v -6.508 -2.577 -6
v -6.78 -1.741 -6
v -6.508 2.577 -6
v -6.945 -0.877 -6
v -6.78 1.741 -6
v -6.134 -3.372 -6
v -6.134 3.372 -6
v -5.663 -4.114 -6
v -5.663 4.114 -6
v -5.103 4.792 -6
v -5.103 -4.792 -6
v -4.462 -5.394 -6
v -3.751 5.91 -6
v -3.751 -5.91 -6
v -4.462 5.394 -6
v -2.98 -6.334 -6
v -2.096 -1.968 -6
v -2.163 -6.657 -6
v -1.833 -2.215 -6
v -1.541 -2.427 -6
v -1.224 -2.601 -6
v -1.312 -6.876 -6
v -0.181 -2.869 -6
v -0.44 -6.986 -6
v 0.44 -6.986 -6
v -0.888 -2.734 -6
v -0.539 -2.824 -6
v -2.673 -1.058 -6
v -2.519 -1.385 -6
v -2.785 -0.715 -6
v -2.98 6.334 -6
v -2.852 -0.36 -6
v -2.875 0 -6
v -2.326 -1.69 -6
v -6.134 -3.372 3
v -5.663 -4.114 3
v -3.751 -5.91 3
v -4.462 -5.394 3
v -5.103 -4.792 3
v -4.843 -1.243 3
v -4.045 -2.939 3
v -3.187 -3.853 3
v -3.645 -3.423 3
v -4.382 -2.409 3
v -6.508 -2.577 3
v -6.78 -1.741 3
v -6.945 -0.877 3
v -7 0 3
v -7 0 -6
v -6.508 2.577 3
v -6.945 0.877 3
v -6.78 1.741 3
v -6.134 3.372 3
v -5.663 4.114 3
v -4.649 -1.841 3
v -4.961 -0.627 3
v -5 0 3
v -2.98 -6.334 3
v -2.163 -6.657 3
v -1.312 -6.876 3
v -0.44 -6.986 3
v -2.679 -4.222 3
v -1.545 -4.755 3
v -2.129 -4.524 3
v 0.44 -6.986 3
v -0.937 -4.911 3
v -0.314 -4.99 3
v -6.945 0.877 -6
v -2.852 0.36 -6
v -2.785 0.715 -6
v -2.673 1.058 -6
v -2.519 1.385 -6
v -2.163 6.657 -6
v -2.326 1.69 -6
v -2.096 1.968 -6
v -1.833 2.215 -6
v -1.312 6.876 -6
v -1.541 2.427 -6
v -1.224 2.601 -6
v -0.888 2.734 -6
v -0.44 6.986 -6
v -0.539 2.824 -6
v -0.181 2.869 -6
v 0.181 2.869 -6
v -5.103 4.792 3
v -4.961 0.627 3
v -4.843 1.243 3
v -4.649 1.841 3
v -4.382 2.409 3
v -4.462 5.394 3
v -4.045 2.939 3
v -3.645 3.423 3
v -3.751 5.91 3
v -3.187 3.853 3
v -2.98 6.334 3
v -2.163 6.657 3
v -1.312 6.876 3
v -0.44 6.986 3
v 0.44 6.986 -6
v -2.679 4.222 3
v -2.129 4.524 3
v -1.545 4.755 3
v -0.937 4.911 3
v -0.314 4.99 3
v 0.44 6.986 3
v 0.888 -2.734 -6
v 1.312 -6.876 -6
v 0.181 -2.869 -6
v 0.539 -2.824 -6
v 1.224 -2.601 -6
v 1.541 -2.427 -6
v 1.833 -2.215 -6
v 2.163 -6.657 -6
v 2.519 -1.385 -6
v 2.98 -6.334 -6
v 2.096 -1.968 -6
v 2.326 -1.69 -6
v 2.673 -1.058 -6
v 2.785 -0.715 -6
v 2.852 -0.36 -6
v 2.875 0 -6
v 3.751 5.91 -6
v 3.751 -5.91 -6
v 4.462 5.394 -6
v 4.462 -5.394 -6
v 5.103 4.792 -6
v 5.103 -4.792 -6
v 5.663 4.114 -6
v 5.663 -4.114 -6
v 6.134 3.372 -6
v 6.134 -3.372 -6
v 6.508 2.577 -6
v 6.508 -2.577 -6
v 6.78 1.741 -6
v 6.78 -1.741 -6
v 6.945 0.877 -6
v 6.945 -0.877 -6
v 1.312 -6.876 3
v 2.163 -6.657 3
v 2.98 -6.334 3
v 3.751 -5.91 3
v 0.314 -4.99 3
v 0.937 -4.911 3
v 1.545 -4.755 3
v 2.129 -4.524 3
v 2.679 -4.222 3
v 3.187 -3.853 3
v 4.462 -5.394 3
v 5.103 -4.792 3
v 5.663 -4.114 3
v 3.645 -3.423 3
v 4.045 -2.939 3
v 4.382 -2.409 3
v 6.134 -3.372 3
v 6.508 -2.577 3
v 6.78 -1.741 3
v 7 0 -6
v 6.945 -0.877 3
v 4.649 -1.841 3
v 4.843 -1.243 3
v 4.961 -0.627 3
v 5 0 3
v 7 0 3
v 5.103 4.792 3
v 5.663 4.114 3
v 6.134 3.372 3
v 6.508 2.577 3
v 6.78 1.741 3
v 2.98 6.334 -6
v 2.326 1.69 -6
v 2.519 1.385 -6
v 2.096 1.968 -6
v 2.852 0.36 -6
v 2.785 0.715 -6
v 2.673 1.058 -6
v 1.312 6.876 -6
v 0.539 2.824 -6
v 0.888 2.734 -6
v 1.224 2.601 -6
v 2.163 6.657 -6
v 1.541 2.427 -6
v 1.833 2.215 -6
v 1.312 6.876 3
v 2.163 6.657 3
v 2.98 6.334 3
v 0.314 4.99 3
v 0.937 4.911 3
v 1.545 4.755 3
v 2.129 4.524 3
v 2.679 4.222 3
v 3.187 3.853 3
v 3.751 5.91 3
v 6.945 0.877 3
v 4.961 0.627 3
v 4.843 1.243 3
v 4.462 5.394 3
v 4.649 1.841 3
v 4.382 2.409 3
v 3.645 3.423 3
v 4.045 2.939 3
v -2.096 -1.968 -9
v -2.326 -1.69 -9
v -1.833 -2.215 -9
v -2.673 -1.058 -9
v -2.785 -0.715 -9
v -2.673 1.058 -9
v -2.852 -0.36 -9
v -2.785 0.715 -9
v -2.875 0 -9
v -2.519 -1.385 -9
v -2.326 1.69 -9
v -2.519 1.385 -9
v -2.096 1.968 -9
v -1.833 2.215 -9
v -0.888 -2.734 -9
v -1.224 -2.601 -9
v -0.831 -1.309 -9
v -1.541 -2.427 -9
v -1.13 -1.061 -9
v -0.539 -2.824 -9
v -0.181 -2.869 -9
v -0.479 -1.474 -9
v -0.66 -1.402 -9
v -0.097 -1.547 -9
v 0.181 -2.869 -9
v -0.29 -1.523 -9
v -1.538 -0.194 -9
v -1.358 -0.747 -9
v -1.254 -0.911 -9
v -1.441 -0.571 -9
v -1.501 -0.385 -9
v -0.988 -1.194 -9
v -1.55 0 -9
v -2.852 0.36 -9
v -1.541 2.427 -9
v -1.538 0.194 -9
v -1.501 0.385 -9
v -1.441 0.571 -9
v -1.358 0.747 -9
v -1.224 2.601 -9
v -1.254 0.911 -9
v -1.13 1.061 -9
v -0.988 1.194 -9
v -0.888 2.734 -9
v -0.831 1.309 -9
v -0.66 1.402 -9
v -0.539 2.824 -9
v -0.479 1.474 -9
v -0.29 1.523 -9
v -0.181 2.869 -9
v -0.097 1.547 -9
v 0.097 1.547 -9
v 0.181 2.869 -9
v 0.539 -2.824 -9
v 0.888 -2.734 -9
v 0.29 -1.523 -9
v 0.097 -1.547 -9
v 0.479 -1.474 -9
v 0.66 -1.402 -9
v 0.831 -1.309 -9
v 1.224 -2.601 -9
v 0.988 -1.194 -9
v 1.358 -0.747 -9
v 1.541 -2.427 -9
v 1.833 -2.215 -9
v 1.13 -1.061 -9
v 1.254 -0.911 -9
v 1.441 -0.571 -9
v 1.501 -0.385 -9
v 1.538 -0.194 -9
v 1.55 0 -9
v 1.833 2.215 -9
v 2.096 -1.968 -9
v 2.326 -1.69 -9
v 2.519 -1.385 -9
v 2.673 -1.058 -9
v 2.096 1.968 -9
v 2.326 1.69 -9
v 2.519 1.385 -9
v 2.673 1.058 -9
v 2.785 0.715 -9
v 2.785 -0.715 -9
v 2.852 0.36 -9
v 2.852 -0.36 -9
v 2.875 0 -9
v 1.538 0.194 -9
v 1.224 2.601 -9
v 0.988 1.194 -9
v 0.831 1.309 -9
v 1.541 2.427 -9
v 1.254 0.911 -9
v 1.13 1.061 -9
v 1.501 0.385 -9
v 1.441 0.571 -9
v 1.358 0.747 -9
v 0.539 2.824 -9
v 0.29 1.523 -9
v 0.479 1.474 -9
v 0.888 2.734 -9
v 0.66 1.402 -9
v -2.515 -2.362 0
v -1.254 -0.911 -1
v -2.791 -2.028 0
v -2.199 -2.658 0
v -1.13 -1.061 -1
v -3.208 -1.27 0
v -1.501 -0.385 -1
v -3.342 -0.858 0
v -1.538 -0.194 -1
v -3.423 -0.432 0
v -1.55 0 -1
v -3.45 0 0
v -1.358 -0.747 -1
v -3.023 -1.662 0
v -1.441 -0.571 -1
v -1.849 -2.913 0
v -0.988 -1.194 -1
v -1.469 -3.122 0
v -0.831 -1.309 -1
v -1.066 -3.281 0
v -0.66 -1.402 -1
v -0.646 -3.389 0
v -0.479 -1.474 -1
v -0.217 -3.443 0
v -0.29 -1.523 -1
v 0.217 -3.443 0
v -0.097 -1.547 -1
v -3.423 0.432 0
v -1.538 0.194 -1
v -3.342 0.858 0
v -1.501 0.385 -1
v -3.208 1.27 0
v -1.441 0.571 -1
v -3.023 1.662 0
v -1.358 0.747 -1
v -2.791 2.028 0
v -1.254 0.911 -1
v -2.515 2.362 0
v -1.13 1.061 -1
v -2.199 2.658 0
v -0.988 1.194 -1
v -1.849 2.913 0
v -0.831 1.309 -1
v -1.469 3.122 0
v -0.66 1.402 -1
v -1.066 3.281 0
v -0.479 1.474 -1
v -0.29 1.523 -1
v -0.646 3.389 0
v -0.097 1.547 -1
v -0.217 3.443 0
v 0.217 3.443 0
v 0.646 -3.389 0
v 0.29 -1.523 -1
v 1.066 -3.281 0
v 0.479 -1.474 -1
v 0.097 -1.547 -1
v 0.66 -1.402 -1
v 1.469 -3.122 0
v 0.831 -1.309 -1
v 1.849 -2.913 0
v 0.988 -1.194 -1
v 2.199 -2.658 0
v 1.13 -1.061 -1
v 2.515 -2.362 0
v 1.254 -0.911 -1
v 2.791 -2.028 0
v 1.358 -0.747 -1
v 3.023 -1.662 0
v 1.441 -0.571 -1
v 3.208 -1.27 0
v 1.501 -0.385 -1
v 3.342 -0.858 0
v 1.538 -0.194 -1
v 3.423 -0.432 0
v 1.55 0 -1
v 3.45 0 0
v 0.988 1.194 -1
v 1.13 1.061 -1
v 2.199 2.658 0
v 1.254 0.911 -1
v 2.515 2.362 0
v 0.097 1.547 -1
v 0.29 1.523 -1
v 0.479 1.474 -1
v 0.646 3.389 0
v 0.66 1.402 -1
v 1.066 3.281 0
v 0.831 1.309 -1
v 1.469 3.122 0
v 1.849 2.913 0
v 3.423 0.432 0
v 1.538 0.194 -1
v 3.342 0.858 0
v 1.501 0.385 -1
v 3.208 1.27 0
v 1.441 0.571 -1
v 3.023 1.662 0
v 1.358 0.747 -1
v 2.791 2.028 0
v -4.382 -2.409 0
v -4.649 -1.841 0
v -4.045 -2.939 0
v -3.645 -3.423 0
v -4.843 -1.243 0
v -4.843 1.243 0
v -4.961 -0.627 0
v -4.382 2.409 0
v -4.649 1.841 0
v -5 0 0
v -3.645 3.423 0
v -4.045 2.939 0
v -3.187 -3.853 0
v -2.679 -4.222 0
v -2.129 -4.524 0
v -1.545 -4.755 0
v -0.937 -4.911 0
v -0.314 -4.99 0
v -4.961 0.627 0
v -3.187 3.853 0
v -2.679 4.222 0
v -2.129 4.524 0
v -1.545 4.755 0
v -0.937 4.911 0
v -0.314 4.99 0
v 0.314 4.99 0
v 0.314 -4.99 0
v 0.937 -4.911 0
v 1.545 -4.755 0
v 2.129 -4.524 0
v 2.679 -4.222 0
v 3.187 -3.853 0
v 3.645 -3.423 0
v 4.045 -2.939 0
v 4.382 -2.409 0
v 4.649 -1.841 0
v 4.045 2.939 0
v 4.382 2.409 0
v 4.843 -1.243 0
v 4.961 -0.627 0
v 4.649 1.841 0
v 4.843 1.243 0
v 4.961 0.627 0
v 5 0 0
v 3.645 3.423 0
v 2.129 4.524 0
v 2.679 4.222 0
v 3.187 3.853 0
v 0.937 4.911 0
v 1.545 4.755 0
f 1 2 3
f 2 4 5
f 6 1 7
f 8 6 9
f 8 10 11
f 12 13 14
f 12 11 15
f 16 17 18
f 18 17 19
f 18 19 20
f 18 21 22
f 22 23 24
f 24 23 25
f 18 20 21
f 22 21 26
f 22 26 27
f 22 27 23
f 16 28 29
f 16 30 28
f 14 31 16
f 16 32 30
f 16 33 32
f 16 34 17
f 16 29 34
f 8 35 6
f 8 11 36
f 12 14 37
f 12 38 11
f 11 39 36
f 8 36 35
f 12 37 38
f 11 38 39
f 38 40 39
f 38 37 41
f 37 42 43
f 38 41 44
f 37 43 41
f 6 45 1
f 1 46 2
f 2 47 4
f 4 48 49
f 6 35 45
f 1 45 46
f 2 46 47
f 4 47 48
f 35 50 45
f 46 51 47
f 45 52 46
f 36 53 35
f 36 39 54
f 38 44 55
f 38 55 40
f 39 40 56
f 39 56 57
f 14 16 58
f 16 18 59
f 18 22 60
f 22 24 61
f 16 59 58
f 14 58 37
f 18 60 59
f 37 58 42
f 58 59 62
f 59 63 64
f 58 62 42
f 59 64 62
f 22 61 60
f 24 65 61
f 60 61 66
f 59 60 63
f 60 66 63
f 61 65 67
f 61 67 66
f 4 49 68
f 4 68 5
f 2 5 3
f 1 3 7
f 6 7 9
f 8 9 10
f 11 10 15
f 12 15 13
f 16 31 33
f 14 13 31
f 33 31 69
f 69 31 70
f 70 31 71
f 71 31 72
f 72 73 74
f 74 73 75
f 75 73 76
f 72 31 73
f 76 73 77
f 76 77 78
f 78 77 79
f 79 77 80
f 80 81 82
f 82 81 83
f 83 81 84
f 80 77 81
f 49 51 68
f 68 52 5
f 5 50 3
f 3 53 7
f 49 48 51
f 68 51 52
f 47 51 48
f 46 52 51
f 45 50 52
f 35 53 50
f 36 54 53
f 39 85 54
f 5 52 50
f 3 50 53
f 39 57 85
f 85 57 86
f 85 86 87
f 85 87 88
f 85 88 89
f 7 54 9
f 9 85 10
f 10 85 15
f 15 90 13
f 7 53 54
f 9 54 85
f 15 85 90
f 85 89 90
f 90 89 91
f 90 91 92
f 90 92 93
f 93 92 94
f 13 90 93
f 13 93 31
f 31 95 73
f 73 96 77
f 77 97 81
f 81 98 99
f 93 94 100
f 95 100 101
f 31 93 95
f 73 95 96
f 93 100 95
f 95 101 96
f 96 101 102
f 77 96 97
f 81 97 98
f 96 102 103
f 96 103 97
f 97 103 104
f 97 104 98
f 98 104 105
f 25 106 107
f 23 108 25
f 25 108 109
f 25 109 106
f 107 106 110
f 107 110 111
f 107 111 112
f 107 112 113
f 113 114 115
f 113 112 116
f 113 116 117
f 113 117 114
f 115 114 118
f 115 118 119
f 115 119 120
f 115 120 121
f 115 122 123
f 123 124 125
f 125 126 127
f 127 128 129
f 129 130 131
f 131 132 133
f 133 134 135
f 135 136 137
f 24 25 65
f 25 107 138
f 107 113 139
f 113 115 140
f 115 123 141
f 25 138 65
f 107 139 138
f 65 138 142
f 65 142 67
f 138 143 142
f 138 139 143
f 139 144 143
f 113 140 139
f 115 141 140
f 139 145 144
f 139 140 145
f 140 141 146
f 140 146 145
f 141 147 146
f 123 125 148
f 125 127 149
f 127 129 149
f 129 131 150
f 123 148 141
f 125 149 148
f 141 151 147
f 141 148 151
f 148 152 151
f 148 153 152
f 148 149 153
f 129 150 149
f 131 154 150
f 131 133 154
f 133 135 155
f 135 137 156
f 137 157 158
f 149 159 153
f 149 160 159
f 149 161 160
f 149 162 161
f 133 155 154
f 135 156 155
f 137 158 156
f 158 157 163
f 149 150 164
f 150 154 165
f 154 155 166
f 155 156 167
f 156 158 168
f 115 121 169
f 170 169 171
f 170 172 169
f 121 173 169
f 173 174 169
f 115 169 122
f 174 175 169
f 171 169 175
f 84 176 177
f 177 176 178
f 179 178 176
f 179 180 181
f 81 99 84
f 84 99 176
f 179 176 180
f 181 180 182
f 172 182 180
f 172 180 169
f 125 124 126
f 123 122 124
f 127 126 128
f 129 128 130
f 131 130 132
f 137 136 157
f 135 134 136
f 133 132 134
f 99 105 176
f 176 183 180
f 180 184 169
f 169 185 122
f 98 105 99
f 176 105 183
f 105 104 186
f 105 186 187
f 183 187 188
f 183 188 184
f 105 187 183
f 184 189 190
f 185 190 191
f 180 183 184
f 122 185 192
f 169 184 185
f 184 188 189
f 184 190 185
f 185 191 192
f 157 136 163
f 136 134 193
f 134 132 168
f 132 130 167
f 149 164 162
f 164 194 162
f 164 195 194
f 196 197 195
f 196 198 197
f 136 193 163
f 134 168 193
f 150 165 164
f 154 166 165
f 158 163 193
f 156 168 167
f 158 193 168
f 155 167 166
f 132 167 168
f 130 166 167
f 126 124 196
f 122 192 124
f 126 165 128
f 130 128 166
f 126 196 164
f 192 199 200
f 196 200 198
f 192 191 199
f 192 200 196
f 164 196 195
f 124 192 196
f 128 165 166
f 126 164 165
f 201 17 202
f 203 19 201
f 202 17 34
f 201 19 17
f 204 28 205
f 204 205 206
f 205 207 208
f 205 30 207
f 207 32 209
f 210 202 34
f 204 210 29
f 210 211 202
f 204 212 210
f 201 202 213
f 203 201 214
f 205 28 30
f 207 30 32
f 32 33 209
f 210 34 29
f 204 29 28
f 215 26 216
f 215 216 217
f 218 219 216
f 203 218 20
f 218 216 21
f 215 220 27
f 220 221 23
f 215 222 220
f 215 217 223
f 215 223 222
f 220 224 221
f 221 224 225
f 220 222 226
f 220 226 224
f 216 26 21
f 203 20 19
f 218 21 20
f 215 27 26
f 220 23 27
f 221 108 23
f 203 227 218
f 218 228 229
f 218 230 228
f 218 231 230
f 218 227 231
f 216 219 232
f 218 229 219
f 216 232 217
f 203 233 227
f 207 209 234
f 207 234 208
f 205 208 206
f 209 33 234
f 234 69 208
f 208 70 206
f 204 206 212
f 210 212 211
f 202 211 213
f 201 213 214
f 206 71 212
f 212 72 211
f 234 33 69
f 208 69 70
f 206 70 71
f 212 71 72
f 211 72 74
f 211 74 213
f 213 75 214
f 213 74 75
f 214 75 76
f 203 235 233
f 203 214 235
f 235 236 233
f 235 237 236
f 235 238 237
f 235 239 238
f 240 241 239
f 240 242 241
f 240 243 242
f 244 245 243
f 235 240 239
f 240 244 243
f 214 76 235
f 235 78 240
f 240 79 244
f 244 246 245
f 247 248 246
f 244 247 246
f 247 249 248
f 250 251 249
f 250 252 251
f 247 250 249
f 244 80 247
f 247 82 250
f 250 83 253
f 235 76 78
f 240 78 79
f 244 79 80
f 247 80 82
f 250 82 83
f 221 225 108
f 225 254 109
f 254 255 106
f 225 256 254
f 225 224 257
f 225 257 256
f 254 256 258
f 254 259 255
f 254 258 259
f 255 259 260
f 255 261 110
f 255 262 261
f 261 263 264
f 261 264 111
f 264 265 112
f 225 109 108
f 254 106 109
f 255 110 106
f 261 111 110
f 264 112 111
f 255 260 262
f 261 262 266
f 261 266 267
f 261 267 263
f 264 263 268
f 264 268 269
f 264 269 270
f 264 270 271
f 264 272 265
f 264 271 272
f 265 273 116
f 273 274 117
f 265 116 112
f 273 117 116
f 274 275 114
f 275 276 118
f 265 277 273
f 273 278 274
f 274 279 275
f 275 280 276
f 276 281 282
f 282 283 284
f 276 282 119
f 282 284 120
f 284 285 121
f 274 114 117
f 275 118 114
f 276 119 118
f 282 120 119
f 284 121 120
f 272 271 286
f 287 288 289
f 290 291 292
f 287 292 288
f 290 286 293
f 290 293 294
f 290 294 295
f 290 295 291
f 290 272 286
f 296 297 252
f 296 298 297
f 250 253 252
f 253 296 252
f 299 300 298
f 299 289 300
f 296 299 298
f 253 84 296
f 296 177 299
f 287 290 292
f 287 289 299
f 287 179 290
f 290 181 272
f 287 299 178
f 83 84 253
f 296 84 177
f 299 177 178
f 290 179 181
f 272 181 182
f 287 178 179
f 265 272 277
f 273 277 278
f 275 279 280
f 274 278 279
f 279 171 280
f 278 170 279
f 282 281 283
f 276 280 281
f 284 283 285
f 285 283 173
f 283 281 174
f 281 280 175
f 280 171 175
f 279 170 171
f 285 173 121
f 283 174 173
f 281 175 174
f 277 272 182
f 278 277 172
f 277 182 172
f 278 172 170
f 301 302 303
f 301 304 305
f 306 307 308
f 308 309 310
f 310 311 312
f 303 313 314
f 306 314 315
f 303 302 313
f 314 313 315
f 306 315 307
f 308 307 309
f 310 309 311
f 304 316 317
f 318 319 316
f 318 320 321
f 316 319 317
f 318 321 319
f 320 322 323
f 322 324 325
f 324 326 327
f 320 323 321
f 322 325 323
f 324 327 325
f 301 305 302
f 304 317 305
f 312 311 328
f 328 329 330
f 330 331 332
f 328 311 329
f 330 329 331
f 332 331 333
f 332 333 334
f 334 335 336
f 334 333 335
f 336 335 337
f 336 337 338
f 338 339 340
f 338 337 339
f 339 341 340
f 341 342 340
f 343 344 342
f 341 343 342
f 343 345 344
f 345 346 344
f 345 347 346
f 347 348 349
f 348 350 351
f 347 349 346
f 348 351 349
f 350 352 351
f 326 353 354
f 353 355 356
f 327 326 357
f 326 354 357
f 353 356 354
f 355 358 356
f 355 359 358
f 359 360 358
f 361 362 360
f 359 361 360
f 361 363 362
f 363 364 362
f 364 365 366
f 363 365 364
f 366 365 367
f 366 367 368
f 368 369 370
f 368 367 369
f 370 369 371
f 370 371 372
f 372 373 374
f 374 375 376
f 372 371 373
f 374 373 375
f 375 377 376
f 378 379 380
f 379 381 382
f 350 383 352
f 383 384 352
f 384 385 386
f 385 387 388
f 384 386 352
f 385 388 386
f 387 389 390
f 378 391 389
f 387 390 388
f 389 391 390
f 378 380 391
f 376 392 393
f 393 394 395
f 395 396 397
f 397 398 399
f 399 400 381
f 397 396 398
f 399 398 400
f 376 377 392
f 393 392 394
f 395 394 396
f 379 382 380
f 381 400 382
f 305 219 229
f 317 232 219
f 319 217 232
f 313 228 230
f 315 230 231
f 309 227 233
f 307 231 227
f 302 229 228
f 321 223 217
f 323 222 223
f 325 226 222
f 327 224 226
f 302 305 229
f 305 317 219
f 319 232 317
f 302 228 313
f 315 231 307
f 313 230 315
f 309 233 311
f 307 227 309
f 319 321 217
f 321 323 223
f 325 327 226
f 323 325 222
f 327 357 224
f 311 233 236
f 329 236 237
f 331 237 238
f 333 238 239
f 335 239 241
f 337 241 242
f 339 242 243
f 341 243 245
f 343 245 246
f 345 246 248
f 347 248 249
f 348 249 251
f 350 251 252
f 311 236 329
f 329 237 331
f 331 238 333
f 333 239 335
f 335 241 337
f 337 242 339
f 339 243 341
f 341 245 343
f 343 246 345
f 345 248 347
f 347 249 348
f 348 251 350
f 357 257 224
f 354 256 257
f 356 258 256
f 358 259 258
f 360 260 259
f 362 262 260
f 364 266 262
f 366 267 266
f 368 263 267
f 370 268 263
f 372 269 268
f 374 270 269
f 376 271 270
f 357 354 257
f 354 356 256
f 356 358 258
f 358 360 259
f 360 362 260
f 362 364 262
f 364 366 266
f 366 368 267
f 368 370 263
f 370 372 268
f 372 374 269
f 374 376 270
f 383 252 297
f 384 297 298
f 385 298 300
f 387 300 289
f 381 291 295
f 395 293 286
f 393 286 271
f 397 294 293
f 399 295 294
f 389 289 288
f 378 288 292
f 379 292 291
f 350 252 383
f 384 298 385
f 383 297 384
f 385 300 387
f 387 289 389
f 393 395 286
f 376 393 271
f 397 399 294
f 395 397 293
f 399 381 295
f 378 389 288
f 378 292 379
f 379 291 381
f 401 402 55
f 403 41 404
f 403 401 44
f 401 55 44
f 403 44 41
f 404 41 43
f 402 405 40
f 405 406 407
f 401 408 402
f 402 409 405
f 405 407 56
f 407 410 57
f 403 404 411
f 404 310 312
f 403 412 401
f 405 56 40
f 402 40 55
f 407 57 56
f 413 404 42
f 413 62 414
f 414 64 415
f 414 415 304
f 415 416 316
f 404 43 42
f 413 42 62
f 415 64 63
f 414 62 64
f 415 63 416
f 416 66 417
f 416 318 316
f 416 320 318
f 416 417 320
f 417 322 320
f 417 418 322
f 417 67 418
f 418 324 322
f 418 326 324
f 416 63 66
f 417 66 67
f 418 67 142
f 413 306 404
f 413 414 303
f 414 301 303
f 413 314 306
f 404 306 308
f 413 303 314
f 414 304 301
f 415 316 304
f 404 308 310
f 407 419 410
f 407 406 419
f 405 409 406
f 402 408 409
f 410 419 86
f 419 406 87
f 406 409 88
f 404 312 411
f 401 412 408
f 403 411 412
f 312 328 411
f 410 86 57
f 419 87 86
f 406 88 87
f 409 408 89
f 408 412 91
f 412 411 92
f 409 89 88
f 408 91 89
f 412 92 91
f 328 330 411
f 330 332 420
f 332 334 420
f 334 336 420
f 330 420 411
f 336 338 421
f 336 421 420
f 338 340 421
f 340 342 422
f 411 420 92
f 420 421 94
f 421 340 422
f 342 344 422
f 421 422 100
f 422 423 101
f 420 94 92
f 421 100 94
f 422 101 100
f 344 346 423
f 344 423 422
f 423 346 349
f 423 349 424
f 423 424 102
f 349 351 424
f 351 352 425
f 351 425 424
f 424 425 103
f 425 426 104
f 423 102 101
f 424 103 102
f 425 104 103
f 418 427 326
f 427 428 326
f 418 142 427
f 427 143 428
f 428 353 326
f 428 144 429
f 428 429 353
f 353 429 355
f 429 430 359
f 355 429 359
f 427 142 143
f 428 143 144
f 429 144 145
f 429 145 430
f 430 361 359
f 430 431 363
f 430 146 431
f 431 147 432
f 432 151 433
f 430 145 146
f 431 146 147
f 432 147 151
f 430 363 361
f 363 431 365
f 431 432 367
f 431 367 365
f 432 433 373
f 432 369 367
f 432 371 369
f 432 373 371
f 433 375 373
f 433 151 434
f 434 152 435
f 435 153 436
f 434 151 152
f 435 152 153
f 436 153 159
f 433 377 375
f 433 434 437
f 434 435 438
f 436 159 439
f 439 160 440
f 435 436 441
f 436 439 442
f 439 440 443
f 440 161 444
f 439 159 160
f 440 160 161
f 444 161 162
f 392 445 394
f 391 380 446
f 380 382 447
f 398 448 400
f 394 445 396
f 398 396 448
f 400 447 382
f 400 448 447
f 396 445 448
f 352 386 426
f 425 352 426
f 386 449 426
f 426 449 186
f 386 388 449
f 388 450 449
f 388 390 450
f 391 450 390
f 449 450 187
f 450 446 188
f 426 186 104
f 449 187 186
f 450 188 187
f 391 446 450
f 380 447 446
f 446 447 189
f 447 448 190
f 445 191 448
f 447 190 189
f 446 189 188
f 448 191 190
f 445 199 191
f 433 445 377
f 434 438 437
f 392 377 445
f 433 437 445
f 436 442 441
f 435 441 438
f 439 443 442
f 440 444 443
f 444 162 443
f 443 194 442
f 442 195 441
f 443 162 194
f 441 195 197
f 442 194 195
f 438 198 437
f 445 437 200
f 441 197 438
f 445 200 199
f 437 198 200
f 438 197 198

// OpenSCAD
$fn = 50;


difference() {
	union() {
		translate(v = [0, 0, -6.0000000000]) {
			cylinder(h = 9, r = 7.0000000000);
		}
		#translate(v = [0, 0, -9.0000000000]) {
			cylinder(h = 9, r = 2.8750000000);
		}
	}
	union() {
		translate(v = [0, 0, 0]) {
			rotate(a = [0, 0, 0]) {
				difference() {
					union() {
						translate(v = [0, 0, -9.0000000000]) {
							cylinder(h = 9, r = 1.2500000000);
						}
						translate(v = [0, 0, -1.0000000000]) {
							cylinder(h = 1.0000000000, r1 = 1.5500000000, r2 = 3.4500000000);
						}
						translate(v = [0, 0, -9.0000000000]) {
							cylinder(h = 9, r = 1.5500000000);
						}
						translate(v = [0, 0, -9.0000000000]) {
							cylinder(h = 9, r = 1.2500000000);
						}
					}
					union();
				}
			}
		}
		#cylinder(h = 3, r = 5.0000000000);
	}
}
